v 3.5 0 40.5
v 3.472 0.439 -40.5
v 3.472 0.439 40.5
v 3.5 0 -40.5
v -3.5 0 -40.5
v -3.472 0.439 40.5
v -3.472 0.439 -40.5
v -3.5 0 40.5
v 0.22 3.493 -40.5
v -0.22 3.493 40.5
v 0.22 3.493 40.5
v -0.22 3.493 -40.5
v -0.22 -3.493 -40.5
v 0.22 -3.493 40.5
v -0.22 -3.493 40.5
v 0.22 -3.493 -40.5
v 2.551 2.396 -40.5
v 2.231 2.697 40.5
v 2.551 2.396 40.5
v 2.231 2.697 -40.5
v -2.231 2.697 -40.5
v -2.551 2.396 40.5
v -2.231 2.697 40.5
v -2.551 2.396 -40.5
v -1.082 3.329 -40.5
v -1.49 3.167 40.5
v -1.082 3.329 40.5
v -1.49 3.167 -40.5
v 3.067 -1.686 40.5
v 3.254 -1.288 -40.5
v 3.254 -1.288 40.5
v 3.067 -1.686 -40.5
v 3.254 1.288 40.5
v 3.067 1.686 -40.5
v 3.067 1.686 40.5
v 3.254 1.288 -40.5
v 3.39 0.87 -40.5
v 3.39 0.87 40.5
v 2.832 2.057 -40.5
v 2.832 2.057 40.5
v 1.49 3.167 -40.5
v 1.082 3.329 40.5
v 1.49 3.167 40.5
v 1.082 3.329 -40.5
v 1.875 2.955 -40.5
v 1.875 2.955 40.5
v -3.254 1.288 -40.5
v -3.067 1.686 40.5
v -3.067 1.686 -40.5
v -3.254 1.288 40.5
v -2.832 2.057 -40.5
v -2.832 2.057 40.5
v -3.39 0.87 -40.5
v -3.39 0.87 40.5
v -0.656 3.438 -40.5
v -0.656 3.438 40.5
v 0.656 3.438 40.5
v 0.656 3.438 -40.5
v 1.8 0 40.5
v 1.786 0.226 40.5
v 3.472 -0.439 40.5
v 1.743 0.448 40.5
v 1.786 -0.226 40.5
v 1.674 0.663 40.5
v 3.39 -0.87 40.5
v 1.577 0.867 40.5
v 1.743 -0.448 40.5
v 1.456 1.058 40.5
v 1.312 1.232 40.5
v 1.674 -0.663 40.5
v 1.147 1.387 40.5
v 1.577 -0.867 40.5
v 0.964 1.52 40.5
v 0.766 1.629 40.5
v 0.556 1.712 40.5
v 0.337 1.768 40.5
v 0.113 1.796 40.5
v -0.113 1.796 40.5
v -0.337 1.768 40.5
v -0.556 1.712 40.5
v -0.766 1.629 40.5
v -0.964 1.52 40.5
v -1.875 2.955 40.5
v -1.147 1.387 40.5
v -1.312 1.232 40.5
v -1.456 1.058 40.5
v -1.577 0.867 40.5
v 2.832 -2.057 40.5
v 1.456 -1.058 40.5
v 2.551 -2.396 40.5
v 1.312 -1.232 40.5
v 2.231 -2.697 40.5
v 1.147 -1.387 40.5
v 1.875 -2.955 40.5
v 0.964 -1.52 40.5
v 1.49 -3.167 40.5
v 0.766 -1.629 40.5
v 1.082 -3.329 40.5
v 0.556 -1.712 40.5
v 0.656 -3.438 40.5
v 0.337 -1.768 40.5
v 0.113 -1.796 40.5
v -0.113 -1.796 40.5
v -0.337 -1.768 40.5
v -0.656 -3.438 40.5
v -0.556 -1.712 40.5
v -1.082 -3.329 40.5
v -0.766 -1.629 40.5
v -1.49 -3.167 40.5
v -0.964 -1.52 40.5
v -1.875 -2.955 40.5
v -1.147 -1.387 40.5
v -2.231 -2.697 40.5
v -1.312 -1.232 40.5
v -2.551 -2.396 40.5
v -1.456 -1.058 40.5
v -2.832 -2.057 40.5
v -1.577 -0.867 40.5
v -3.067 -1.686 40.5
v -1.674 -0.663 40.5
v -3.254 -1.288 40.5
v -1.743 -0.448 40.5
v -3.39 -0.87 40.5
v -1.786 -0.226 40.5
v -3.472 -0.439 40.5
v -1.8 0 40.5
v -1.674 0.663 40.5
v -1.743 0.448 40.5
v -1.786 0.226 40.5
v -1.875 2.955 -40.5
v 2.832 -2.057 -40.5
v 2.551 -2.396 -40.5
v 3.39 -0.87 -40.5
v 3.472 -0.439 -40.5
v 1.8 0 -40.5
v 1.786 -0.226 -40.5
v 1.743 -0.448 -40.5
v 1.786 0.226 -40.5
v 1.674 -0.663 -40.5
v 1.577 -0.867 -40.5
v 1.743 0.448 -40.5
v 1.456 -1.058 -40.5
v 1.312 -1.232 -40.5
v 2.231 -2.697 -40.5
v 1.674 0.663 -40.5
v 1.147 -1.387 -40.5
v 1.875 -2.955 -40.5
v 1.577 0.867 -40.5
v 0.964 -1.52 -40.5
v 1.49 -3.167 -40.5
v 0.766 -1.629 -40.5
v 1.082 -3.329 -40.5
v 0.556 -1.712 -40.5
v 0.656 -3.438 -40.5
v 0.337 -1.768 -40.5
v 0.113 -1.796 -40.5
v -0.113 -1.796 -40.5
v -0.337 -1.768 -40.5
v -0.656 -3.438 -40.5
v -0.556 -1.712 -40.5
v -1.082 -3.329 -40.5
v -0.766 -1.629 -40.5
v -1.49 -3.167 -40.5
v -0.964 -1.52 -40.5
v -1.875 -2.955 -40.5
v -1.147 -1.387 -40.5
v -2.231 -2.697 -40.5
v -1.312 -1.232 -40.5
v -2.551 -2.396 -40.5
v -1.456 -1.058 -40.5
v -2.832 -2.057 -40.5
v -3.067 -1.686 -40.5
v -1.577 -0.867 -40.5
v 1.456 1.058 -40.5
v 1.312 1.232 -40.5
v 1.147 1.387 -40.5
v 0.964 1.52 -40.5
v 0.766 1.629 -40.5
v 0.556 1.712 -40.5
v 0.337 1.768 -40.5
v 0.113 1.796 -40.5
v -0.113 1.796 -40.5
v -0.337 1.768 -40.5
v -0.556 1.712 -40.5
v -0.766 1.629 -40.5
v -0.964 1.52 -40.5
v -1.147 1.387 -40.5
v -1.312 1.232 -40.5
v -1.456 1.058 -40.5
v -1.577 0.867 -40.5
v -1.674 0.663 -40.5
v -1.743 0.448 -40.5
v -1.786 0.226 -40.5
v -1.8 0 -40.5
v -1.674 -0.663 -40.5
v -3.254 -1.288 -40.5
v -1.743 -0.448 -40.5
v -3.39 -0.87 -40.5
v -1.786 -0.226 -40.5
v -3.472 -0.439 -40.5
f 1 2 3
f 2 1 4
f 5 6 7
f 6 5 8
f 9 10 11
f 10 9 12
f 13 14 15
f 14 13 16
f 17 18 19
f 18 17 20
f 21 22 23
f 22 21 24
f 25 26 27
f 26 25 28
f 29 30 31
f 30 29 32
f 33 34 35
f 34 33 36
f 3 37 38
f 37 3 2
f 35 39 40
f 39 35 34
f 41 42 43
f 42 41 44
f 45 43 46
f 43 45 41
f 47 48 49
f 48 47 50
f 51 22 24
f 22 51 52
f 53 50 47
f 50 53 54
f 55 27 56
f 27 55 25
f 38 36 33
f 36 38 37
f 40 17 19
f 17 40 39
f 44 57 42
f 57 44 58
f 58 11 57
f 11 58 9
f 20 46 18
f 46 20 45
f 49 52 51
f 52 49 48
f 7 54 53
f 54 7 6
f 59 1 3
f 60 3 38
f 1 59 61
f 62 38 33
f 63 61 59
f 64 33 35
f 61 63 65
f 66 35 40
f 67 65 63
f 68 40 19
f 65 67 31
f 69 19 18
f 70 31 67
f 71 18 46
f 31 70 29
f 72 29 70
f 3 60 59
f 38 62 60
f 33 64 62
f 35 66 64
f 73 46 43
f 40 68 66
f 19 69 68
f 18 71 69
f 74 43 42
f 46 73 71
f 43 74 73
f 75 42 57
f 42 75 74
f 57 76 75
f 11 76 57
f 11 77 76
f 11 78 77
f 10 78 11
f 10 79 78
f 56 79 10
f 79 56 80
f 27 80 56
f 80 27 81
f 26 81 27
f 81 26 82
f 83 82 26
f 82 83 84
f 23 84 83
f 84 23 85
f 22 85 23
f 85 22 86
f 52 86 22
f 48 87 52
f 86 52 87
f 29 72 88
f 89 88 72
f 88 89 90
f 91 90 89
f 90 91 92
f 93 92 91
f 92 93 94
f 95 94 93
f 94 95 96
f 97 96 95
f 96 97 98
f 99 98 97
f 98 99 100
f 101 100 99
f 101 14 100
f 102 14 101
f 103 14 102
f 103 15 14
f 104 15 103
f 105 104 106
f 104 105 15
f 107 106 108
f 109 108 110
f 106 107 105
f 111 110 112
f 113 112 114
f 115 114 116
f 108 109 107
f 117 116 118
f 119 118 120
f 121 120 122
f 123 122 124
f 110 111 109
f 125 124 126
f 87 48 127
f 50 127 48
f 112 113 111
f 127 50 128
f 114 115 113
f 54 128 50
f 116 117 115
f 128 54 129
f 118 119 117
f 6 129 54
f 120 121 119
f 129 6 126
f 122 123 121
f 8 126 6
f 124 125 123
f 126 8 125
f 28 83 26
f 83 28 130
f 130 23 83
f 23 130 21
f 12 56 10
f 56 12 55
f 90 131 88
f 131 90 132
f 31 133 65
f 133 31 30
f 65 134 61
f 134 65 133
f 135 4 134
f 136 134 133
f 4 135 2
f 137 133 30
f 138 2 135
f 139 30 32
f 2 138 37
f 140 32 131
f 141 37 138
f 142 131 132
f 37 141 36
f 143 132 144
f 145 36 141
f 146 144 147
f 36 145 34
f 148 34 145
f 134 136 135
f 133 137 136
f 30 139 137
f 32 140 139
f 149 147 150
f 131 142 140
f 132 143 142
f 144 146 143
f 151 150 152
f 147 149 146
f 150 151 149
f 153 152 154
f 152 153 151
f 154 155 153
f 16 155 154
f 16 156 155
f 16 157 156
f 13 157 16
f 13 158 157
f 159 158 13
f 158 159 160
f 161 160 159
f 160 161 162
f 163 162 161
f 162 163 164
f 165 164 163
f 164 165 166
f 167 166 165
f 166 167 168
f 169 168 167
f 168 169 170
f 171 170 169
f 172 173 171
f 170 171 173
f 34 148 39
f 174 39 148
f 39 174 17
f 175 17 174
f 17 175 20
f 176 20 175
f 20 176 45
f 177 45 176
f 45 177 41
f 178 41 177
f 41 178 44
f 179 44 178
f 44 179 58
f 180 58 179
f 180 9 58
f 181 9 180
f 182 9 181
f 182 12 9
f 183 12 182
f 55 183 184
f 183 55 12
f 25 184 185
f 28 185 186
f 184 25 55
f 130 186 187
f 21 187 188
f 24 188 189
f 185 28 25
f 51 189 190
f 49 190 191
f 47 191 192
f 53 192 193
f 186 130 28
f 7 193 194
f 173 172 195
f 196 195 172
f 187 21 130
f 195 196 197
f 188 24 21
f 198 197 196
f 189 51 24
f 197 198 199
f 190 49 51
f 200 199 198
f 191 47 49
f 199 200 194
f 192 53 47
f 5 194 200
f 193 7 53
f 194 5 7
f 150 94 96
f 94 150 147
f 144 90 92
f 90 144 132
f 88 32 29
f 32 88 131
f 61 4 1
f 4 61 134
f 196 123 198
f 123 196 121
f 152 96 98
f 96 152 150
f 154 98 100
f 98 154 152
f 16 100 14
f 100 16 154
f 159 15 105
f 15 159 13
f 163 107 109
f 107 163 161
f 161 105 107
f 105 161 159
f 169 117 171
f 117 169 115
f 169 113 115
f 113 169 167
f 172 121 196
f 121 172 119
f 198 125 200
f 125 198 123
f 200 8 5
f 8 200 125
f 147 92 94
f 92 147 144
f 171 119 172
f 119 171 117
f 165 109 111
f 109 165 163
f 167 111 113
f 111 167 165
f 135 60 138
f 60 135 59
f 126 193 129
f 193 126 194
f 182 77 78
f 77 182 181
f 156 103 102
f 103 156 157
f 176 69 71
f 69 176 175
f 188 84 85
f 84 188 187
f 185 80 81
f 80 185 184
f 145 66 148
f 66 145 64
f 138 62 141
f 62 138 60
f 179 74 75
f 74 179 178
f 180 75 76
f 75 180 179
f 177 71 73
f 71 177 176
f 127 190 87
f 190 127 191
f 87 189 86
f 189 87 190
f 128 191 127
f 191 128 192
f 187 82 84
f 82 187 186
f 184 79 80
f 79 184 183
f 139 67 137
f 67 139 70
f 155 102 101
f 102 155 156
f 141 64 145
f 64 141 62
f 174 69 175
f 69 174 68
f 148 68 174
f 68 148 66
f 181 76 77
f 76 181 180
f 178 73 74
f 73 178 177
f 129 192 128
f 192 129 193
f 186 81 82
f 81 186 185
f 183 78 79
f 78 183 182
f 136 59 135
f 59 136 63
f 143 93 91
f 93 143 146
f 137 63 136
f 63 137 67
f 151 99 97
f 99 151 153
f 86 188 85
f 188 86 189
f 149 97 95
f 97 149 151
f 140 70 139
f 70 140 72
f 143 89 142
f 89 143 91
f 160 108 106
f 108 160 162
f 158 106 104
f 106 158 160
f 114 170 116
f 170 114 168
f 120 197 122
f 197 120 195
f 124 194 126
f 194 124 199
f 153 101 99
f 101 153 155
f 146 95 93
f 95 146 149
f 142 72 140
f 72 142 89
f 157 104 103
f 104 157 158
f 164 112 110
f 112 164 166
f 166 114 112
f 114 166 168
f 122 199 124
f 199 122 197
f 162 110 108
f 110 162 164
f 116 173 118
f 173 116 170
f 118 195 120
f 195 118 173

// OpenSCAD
$fn = 50;


difference() {
	union() {
		translate(v = [0, 0, -40.5000000000]) {
			cylinder(h = 81, r = 3.5000000000);
		}
	}
	union() {
		translate(v = [0, 0, -100.0000000000]) {
			cylinder(h = 200, r = 1.8000000000);
		}
	}
}
